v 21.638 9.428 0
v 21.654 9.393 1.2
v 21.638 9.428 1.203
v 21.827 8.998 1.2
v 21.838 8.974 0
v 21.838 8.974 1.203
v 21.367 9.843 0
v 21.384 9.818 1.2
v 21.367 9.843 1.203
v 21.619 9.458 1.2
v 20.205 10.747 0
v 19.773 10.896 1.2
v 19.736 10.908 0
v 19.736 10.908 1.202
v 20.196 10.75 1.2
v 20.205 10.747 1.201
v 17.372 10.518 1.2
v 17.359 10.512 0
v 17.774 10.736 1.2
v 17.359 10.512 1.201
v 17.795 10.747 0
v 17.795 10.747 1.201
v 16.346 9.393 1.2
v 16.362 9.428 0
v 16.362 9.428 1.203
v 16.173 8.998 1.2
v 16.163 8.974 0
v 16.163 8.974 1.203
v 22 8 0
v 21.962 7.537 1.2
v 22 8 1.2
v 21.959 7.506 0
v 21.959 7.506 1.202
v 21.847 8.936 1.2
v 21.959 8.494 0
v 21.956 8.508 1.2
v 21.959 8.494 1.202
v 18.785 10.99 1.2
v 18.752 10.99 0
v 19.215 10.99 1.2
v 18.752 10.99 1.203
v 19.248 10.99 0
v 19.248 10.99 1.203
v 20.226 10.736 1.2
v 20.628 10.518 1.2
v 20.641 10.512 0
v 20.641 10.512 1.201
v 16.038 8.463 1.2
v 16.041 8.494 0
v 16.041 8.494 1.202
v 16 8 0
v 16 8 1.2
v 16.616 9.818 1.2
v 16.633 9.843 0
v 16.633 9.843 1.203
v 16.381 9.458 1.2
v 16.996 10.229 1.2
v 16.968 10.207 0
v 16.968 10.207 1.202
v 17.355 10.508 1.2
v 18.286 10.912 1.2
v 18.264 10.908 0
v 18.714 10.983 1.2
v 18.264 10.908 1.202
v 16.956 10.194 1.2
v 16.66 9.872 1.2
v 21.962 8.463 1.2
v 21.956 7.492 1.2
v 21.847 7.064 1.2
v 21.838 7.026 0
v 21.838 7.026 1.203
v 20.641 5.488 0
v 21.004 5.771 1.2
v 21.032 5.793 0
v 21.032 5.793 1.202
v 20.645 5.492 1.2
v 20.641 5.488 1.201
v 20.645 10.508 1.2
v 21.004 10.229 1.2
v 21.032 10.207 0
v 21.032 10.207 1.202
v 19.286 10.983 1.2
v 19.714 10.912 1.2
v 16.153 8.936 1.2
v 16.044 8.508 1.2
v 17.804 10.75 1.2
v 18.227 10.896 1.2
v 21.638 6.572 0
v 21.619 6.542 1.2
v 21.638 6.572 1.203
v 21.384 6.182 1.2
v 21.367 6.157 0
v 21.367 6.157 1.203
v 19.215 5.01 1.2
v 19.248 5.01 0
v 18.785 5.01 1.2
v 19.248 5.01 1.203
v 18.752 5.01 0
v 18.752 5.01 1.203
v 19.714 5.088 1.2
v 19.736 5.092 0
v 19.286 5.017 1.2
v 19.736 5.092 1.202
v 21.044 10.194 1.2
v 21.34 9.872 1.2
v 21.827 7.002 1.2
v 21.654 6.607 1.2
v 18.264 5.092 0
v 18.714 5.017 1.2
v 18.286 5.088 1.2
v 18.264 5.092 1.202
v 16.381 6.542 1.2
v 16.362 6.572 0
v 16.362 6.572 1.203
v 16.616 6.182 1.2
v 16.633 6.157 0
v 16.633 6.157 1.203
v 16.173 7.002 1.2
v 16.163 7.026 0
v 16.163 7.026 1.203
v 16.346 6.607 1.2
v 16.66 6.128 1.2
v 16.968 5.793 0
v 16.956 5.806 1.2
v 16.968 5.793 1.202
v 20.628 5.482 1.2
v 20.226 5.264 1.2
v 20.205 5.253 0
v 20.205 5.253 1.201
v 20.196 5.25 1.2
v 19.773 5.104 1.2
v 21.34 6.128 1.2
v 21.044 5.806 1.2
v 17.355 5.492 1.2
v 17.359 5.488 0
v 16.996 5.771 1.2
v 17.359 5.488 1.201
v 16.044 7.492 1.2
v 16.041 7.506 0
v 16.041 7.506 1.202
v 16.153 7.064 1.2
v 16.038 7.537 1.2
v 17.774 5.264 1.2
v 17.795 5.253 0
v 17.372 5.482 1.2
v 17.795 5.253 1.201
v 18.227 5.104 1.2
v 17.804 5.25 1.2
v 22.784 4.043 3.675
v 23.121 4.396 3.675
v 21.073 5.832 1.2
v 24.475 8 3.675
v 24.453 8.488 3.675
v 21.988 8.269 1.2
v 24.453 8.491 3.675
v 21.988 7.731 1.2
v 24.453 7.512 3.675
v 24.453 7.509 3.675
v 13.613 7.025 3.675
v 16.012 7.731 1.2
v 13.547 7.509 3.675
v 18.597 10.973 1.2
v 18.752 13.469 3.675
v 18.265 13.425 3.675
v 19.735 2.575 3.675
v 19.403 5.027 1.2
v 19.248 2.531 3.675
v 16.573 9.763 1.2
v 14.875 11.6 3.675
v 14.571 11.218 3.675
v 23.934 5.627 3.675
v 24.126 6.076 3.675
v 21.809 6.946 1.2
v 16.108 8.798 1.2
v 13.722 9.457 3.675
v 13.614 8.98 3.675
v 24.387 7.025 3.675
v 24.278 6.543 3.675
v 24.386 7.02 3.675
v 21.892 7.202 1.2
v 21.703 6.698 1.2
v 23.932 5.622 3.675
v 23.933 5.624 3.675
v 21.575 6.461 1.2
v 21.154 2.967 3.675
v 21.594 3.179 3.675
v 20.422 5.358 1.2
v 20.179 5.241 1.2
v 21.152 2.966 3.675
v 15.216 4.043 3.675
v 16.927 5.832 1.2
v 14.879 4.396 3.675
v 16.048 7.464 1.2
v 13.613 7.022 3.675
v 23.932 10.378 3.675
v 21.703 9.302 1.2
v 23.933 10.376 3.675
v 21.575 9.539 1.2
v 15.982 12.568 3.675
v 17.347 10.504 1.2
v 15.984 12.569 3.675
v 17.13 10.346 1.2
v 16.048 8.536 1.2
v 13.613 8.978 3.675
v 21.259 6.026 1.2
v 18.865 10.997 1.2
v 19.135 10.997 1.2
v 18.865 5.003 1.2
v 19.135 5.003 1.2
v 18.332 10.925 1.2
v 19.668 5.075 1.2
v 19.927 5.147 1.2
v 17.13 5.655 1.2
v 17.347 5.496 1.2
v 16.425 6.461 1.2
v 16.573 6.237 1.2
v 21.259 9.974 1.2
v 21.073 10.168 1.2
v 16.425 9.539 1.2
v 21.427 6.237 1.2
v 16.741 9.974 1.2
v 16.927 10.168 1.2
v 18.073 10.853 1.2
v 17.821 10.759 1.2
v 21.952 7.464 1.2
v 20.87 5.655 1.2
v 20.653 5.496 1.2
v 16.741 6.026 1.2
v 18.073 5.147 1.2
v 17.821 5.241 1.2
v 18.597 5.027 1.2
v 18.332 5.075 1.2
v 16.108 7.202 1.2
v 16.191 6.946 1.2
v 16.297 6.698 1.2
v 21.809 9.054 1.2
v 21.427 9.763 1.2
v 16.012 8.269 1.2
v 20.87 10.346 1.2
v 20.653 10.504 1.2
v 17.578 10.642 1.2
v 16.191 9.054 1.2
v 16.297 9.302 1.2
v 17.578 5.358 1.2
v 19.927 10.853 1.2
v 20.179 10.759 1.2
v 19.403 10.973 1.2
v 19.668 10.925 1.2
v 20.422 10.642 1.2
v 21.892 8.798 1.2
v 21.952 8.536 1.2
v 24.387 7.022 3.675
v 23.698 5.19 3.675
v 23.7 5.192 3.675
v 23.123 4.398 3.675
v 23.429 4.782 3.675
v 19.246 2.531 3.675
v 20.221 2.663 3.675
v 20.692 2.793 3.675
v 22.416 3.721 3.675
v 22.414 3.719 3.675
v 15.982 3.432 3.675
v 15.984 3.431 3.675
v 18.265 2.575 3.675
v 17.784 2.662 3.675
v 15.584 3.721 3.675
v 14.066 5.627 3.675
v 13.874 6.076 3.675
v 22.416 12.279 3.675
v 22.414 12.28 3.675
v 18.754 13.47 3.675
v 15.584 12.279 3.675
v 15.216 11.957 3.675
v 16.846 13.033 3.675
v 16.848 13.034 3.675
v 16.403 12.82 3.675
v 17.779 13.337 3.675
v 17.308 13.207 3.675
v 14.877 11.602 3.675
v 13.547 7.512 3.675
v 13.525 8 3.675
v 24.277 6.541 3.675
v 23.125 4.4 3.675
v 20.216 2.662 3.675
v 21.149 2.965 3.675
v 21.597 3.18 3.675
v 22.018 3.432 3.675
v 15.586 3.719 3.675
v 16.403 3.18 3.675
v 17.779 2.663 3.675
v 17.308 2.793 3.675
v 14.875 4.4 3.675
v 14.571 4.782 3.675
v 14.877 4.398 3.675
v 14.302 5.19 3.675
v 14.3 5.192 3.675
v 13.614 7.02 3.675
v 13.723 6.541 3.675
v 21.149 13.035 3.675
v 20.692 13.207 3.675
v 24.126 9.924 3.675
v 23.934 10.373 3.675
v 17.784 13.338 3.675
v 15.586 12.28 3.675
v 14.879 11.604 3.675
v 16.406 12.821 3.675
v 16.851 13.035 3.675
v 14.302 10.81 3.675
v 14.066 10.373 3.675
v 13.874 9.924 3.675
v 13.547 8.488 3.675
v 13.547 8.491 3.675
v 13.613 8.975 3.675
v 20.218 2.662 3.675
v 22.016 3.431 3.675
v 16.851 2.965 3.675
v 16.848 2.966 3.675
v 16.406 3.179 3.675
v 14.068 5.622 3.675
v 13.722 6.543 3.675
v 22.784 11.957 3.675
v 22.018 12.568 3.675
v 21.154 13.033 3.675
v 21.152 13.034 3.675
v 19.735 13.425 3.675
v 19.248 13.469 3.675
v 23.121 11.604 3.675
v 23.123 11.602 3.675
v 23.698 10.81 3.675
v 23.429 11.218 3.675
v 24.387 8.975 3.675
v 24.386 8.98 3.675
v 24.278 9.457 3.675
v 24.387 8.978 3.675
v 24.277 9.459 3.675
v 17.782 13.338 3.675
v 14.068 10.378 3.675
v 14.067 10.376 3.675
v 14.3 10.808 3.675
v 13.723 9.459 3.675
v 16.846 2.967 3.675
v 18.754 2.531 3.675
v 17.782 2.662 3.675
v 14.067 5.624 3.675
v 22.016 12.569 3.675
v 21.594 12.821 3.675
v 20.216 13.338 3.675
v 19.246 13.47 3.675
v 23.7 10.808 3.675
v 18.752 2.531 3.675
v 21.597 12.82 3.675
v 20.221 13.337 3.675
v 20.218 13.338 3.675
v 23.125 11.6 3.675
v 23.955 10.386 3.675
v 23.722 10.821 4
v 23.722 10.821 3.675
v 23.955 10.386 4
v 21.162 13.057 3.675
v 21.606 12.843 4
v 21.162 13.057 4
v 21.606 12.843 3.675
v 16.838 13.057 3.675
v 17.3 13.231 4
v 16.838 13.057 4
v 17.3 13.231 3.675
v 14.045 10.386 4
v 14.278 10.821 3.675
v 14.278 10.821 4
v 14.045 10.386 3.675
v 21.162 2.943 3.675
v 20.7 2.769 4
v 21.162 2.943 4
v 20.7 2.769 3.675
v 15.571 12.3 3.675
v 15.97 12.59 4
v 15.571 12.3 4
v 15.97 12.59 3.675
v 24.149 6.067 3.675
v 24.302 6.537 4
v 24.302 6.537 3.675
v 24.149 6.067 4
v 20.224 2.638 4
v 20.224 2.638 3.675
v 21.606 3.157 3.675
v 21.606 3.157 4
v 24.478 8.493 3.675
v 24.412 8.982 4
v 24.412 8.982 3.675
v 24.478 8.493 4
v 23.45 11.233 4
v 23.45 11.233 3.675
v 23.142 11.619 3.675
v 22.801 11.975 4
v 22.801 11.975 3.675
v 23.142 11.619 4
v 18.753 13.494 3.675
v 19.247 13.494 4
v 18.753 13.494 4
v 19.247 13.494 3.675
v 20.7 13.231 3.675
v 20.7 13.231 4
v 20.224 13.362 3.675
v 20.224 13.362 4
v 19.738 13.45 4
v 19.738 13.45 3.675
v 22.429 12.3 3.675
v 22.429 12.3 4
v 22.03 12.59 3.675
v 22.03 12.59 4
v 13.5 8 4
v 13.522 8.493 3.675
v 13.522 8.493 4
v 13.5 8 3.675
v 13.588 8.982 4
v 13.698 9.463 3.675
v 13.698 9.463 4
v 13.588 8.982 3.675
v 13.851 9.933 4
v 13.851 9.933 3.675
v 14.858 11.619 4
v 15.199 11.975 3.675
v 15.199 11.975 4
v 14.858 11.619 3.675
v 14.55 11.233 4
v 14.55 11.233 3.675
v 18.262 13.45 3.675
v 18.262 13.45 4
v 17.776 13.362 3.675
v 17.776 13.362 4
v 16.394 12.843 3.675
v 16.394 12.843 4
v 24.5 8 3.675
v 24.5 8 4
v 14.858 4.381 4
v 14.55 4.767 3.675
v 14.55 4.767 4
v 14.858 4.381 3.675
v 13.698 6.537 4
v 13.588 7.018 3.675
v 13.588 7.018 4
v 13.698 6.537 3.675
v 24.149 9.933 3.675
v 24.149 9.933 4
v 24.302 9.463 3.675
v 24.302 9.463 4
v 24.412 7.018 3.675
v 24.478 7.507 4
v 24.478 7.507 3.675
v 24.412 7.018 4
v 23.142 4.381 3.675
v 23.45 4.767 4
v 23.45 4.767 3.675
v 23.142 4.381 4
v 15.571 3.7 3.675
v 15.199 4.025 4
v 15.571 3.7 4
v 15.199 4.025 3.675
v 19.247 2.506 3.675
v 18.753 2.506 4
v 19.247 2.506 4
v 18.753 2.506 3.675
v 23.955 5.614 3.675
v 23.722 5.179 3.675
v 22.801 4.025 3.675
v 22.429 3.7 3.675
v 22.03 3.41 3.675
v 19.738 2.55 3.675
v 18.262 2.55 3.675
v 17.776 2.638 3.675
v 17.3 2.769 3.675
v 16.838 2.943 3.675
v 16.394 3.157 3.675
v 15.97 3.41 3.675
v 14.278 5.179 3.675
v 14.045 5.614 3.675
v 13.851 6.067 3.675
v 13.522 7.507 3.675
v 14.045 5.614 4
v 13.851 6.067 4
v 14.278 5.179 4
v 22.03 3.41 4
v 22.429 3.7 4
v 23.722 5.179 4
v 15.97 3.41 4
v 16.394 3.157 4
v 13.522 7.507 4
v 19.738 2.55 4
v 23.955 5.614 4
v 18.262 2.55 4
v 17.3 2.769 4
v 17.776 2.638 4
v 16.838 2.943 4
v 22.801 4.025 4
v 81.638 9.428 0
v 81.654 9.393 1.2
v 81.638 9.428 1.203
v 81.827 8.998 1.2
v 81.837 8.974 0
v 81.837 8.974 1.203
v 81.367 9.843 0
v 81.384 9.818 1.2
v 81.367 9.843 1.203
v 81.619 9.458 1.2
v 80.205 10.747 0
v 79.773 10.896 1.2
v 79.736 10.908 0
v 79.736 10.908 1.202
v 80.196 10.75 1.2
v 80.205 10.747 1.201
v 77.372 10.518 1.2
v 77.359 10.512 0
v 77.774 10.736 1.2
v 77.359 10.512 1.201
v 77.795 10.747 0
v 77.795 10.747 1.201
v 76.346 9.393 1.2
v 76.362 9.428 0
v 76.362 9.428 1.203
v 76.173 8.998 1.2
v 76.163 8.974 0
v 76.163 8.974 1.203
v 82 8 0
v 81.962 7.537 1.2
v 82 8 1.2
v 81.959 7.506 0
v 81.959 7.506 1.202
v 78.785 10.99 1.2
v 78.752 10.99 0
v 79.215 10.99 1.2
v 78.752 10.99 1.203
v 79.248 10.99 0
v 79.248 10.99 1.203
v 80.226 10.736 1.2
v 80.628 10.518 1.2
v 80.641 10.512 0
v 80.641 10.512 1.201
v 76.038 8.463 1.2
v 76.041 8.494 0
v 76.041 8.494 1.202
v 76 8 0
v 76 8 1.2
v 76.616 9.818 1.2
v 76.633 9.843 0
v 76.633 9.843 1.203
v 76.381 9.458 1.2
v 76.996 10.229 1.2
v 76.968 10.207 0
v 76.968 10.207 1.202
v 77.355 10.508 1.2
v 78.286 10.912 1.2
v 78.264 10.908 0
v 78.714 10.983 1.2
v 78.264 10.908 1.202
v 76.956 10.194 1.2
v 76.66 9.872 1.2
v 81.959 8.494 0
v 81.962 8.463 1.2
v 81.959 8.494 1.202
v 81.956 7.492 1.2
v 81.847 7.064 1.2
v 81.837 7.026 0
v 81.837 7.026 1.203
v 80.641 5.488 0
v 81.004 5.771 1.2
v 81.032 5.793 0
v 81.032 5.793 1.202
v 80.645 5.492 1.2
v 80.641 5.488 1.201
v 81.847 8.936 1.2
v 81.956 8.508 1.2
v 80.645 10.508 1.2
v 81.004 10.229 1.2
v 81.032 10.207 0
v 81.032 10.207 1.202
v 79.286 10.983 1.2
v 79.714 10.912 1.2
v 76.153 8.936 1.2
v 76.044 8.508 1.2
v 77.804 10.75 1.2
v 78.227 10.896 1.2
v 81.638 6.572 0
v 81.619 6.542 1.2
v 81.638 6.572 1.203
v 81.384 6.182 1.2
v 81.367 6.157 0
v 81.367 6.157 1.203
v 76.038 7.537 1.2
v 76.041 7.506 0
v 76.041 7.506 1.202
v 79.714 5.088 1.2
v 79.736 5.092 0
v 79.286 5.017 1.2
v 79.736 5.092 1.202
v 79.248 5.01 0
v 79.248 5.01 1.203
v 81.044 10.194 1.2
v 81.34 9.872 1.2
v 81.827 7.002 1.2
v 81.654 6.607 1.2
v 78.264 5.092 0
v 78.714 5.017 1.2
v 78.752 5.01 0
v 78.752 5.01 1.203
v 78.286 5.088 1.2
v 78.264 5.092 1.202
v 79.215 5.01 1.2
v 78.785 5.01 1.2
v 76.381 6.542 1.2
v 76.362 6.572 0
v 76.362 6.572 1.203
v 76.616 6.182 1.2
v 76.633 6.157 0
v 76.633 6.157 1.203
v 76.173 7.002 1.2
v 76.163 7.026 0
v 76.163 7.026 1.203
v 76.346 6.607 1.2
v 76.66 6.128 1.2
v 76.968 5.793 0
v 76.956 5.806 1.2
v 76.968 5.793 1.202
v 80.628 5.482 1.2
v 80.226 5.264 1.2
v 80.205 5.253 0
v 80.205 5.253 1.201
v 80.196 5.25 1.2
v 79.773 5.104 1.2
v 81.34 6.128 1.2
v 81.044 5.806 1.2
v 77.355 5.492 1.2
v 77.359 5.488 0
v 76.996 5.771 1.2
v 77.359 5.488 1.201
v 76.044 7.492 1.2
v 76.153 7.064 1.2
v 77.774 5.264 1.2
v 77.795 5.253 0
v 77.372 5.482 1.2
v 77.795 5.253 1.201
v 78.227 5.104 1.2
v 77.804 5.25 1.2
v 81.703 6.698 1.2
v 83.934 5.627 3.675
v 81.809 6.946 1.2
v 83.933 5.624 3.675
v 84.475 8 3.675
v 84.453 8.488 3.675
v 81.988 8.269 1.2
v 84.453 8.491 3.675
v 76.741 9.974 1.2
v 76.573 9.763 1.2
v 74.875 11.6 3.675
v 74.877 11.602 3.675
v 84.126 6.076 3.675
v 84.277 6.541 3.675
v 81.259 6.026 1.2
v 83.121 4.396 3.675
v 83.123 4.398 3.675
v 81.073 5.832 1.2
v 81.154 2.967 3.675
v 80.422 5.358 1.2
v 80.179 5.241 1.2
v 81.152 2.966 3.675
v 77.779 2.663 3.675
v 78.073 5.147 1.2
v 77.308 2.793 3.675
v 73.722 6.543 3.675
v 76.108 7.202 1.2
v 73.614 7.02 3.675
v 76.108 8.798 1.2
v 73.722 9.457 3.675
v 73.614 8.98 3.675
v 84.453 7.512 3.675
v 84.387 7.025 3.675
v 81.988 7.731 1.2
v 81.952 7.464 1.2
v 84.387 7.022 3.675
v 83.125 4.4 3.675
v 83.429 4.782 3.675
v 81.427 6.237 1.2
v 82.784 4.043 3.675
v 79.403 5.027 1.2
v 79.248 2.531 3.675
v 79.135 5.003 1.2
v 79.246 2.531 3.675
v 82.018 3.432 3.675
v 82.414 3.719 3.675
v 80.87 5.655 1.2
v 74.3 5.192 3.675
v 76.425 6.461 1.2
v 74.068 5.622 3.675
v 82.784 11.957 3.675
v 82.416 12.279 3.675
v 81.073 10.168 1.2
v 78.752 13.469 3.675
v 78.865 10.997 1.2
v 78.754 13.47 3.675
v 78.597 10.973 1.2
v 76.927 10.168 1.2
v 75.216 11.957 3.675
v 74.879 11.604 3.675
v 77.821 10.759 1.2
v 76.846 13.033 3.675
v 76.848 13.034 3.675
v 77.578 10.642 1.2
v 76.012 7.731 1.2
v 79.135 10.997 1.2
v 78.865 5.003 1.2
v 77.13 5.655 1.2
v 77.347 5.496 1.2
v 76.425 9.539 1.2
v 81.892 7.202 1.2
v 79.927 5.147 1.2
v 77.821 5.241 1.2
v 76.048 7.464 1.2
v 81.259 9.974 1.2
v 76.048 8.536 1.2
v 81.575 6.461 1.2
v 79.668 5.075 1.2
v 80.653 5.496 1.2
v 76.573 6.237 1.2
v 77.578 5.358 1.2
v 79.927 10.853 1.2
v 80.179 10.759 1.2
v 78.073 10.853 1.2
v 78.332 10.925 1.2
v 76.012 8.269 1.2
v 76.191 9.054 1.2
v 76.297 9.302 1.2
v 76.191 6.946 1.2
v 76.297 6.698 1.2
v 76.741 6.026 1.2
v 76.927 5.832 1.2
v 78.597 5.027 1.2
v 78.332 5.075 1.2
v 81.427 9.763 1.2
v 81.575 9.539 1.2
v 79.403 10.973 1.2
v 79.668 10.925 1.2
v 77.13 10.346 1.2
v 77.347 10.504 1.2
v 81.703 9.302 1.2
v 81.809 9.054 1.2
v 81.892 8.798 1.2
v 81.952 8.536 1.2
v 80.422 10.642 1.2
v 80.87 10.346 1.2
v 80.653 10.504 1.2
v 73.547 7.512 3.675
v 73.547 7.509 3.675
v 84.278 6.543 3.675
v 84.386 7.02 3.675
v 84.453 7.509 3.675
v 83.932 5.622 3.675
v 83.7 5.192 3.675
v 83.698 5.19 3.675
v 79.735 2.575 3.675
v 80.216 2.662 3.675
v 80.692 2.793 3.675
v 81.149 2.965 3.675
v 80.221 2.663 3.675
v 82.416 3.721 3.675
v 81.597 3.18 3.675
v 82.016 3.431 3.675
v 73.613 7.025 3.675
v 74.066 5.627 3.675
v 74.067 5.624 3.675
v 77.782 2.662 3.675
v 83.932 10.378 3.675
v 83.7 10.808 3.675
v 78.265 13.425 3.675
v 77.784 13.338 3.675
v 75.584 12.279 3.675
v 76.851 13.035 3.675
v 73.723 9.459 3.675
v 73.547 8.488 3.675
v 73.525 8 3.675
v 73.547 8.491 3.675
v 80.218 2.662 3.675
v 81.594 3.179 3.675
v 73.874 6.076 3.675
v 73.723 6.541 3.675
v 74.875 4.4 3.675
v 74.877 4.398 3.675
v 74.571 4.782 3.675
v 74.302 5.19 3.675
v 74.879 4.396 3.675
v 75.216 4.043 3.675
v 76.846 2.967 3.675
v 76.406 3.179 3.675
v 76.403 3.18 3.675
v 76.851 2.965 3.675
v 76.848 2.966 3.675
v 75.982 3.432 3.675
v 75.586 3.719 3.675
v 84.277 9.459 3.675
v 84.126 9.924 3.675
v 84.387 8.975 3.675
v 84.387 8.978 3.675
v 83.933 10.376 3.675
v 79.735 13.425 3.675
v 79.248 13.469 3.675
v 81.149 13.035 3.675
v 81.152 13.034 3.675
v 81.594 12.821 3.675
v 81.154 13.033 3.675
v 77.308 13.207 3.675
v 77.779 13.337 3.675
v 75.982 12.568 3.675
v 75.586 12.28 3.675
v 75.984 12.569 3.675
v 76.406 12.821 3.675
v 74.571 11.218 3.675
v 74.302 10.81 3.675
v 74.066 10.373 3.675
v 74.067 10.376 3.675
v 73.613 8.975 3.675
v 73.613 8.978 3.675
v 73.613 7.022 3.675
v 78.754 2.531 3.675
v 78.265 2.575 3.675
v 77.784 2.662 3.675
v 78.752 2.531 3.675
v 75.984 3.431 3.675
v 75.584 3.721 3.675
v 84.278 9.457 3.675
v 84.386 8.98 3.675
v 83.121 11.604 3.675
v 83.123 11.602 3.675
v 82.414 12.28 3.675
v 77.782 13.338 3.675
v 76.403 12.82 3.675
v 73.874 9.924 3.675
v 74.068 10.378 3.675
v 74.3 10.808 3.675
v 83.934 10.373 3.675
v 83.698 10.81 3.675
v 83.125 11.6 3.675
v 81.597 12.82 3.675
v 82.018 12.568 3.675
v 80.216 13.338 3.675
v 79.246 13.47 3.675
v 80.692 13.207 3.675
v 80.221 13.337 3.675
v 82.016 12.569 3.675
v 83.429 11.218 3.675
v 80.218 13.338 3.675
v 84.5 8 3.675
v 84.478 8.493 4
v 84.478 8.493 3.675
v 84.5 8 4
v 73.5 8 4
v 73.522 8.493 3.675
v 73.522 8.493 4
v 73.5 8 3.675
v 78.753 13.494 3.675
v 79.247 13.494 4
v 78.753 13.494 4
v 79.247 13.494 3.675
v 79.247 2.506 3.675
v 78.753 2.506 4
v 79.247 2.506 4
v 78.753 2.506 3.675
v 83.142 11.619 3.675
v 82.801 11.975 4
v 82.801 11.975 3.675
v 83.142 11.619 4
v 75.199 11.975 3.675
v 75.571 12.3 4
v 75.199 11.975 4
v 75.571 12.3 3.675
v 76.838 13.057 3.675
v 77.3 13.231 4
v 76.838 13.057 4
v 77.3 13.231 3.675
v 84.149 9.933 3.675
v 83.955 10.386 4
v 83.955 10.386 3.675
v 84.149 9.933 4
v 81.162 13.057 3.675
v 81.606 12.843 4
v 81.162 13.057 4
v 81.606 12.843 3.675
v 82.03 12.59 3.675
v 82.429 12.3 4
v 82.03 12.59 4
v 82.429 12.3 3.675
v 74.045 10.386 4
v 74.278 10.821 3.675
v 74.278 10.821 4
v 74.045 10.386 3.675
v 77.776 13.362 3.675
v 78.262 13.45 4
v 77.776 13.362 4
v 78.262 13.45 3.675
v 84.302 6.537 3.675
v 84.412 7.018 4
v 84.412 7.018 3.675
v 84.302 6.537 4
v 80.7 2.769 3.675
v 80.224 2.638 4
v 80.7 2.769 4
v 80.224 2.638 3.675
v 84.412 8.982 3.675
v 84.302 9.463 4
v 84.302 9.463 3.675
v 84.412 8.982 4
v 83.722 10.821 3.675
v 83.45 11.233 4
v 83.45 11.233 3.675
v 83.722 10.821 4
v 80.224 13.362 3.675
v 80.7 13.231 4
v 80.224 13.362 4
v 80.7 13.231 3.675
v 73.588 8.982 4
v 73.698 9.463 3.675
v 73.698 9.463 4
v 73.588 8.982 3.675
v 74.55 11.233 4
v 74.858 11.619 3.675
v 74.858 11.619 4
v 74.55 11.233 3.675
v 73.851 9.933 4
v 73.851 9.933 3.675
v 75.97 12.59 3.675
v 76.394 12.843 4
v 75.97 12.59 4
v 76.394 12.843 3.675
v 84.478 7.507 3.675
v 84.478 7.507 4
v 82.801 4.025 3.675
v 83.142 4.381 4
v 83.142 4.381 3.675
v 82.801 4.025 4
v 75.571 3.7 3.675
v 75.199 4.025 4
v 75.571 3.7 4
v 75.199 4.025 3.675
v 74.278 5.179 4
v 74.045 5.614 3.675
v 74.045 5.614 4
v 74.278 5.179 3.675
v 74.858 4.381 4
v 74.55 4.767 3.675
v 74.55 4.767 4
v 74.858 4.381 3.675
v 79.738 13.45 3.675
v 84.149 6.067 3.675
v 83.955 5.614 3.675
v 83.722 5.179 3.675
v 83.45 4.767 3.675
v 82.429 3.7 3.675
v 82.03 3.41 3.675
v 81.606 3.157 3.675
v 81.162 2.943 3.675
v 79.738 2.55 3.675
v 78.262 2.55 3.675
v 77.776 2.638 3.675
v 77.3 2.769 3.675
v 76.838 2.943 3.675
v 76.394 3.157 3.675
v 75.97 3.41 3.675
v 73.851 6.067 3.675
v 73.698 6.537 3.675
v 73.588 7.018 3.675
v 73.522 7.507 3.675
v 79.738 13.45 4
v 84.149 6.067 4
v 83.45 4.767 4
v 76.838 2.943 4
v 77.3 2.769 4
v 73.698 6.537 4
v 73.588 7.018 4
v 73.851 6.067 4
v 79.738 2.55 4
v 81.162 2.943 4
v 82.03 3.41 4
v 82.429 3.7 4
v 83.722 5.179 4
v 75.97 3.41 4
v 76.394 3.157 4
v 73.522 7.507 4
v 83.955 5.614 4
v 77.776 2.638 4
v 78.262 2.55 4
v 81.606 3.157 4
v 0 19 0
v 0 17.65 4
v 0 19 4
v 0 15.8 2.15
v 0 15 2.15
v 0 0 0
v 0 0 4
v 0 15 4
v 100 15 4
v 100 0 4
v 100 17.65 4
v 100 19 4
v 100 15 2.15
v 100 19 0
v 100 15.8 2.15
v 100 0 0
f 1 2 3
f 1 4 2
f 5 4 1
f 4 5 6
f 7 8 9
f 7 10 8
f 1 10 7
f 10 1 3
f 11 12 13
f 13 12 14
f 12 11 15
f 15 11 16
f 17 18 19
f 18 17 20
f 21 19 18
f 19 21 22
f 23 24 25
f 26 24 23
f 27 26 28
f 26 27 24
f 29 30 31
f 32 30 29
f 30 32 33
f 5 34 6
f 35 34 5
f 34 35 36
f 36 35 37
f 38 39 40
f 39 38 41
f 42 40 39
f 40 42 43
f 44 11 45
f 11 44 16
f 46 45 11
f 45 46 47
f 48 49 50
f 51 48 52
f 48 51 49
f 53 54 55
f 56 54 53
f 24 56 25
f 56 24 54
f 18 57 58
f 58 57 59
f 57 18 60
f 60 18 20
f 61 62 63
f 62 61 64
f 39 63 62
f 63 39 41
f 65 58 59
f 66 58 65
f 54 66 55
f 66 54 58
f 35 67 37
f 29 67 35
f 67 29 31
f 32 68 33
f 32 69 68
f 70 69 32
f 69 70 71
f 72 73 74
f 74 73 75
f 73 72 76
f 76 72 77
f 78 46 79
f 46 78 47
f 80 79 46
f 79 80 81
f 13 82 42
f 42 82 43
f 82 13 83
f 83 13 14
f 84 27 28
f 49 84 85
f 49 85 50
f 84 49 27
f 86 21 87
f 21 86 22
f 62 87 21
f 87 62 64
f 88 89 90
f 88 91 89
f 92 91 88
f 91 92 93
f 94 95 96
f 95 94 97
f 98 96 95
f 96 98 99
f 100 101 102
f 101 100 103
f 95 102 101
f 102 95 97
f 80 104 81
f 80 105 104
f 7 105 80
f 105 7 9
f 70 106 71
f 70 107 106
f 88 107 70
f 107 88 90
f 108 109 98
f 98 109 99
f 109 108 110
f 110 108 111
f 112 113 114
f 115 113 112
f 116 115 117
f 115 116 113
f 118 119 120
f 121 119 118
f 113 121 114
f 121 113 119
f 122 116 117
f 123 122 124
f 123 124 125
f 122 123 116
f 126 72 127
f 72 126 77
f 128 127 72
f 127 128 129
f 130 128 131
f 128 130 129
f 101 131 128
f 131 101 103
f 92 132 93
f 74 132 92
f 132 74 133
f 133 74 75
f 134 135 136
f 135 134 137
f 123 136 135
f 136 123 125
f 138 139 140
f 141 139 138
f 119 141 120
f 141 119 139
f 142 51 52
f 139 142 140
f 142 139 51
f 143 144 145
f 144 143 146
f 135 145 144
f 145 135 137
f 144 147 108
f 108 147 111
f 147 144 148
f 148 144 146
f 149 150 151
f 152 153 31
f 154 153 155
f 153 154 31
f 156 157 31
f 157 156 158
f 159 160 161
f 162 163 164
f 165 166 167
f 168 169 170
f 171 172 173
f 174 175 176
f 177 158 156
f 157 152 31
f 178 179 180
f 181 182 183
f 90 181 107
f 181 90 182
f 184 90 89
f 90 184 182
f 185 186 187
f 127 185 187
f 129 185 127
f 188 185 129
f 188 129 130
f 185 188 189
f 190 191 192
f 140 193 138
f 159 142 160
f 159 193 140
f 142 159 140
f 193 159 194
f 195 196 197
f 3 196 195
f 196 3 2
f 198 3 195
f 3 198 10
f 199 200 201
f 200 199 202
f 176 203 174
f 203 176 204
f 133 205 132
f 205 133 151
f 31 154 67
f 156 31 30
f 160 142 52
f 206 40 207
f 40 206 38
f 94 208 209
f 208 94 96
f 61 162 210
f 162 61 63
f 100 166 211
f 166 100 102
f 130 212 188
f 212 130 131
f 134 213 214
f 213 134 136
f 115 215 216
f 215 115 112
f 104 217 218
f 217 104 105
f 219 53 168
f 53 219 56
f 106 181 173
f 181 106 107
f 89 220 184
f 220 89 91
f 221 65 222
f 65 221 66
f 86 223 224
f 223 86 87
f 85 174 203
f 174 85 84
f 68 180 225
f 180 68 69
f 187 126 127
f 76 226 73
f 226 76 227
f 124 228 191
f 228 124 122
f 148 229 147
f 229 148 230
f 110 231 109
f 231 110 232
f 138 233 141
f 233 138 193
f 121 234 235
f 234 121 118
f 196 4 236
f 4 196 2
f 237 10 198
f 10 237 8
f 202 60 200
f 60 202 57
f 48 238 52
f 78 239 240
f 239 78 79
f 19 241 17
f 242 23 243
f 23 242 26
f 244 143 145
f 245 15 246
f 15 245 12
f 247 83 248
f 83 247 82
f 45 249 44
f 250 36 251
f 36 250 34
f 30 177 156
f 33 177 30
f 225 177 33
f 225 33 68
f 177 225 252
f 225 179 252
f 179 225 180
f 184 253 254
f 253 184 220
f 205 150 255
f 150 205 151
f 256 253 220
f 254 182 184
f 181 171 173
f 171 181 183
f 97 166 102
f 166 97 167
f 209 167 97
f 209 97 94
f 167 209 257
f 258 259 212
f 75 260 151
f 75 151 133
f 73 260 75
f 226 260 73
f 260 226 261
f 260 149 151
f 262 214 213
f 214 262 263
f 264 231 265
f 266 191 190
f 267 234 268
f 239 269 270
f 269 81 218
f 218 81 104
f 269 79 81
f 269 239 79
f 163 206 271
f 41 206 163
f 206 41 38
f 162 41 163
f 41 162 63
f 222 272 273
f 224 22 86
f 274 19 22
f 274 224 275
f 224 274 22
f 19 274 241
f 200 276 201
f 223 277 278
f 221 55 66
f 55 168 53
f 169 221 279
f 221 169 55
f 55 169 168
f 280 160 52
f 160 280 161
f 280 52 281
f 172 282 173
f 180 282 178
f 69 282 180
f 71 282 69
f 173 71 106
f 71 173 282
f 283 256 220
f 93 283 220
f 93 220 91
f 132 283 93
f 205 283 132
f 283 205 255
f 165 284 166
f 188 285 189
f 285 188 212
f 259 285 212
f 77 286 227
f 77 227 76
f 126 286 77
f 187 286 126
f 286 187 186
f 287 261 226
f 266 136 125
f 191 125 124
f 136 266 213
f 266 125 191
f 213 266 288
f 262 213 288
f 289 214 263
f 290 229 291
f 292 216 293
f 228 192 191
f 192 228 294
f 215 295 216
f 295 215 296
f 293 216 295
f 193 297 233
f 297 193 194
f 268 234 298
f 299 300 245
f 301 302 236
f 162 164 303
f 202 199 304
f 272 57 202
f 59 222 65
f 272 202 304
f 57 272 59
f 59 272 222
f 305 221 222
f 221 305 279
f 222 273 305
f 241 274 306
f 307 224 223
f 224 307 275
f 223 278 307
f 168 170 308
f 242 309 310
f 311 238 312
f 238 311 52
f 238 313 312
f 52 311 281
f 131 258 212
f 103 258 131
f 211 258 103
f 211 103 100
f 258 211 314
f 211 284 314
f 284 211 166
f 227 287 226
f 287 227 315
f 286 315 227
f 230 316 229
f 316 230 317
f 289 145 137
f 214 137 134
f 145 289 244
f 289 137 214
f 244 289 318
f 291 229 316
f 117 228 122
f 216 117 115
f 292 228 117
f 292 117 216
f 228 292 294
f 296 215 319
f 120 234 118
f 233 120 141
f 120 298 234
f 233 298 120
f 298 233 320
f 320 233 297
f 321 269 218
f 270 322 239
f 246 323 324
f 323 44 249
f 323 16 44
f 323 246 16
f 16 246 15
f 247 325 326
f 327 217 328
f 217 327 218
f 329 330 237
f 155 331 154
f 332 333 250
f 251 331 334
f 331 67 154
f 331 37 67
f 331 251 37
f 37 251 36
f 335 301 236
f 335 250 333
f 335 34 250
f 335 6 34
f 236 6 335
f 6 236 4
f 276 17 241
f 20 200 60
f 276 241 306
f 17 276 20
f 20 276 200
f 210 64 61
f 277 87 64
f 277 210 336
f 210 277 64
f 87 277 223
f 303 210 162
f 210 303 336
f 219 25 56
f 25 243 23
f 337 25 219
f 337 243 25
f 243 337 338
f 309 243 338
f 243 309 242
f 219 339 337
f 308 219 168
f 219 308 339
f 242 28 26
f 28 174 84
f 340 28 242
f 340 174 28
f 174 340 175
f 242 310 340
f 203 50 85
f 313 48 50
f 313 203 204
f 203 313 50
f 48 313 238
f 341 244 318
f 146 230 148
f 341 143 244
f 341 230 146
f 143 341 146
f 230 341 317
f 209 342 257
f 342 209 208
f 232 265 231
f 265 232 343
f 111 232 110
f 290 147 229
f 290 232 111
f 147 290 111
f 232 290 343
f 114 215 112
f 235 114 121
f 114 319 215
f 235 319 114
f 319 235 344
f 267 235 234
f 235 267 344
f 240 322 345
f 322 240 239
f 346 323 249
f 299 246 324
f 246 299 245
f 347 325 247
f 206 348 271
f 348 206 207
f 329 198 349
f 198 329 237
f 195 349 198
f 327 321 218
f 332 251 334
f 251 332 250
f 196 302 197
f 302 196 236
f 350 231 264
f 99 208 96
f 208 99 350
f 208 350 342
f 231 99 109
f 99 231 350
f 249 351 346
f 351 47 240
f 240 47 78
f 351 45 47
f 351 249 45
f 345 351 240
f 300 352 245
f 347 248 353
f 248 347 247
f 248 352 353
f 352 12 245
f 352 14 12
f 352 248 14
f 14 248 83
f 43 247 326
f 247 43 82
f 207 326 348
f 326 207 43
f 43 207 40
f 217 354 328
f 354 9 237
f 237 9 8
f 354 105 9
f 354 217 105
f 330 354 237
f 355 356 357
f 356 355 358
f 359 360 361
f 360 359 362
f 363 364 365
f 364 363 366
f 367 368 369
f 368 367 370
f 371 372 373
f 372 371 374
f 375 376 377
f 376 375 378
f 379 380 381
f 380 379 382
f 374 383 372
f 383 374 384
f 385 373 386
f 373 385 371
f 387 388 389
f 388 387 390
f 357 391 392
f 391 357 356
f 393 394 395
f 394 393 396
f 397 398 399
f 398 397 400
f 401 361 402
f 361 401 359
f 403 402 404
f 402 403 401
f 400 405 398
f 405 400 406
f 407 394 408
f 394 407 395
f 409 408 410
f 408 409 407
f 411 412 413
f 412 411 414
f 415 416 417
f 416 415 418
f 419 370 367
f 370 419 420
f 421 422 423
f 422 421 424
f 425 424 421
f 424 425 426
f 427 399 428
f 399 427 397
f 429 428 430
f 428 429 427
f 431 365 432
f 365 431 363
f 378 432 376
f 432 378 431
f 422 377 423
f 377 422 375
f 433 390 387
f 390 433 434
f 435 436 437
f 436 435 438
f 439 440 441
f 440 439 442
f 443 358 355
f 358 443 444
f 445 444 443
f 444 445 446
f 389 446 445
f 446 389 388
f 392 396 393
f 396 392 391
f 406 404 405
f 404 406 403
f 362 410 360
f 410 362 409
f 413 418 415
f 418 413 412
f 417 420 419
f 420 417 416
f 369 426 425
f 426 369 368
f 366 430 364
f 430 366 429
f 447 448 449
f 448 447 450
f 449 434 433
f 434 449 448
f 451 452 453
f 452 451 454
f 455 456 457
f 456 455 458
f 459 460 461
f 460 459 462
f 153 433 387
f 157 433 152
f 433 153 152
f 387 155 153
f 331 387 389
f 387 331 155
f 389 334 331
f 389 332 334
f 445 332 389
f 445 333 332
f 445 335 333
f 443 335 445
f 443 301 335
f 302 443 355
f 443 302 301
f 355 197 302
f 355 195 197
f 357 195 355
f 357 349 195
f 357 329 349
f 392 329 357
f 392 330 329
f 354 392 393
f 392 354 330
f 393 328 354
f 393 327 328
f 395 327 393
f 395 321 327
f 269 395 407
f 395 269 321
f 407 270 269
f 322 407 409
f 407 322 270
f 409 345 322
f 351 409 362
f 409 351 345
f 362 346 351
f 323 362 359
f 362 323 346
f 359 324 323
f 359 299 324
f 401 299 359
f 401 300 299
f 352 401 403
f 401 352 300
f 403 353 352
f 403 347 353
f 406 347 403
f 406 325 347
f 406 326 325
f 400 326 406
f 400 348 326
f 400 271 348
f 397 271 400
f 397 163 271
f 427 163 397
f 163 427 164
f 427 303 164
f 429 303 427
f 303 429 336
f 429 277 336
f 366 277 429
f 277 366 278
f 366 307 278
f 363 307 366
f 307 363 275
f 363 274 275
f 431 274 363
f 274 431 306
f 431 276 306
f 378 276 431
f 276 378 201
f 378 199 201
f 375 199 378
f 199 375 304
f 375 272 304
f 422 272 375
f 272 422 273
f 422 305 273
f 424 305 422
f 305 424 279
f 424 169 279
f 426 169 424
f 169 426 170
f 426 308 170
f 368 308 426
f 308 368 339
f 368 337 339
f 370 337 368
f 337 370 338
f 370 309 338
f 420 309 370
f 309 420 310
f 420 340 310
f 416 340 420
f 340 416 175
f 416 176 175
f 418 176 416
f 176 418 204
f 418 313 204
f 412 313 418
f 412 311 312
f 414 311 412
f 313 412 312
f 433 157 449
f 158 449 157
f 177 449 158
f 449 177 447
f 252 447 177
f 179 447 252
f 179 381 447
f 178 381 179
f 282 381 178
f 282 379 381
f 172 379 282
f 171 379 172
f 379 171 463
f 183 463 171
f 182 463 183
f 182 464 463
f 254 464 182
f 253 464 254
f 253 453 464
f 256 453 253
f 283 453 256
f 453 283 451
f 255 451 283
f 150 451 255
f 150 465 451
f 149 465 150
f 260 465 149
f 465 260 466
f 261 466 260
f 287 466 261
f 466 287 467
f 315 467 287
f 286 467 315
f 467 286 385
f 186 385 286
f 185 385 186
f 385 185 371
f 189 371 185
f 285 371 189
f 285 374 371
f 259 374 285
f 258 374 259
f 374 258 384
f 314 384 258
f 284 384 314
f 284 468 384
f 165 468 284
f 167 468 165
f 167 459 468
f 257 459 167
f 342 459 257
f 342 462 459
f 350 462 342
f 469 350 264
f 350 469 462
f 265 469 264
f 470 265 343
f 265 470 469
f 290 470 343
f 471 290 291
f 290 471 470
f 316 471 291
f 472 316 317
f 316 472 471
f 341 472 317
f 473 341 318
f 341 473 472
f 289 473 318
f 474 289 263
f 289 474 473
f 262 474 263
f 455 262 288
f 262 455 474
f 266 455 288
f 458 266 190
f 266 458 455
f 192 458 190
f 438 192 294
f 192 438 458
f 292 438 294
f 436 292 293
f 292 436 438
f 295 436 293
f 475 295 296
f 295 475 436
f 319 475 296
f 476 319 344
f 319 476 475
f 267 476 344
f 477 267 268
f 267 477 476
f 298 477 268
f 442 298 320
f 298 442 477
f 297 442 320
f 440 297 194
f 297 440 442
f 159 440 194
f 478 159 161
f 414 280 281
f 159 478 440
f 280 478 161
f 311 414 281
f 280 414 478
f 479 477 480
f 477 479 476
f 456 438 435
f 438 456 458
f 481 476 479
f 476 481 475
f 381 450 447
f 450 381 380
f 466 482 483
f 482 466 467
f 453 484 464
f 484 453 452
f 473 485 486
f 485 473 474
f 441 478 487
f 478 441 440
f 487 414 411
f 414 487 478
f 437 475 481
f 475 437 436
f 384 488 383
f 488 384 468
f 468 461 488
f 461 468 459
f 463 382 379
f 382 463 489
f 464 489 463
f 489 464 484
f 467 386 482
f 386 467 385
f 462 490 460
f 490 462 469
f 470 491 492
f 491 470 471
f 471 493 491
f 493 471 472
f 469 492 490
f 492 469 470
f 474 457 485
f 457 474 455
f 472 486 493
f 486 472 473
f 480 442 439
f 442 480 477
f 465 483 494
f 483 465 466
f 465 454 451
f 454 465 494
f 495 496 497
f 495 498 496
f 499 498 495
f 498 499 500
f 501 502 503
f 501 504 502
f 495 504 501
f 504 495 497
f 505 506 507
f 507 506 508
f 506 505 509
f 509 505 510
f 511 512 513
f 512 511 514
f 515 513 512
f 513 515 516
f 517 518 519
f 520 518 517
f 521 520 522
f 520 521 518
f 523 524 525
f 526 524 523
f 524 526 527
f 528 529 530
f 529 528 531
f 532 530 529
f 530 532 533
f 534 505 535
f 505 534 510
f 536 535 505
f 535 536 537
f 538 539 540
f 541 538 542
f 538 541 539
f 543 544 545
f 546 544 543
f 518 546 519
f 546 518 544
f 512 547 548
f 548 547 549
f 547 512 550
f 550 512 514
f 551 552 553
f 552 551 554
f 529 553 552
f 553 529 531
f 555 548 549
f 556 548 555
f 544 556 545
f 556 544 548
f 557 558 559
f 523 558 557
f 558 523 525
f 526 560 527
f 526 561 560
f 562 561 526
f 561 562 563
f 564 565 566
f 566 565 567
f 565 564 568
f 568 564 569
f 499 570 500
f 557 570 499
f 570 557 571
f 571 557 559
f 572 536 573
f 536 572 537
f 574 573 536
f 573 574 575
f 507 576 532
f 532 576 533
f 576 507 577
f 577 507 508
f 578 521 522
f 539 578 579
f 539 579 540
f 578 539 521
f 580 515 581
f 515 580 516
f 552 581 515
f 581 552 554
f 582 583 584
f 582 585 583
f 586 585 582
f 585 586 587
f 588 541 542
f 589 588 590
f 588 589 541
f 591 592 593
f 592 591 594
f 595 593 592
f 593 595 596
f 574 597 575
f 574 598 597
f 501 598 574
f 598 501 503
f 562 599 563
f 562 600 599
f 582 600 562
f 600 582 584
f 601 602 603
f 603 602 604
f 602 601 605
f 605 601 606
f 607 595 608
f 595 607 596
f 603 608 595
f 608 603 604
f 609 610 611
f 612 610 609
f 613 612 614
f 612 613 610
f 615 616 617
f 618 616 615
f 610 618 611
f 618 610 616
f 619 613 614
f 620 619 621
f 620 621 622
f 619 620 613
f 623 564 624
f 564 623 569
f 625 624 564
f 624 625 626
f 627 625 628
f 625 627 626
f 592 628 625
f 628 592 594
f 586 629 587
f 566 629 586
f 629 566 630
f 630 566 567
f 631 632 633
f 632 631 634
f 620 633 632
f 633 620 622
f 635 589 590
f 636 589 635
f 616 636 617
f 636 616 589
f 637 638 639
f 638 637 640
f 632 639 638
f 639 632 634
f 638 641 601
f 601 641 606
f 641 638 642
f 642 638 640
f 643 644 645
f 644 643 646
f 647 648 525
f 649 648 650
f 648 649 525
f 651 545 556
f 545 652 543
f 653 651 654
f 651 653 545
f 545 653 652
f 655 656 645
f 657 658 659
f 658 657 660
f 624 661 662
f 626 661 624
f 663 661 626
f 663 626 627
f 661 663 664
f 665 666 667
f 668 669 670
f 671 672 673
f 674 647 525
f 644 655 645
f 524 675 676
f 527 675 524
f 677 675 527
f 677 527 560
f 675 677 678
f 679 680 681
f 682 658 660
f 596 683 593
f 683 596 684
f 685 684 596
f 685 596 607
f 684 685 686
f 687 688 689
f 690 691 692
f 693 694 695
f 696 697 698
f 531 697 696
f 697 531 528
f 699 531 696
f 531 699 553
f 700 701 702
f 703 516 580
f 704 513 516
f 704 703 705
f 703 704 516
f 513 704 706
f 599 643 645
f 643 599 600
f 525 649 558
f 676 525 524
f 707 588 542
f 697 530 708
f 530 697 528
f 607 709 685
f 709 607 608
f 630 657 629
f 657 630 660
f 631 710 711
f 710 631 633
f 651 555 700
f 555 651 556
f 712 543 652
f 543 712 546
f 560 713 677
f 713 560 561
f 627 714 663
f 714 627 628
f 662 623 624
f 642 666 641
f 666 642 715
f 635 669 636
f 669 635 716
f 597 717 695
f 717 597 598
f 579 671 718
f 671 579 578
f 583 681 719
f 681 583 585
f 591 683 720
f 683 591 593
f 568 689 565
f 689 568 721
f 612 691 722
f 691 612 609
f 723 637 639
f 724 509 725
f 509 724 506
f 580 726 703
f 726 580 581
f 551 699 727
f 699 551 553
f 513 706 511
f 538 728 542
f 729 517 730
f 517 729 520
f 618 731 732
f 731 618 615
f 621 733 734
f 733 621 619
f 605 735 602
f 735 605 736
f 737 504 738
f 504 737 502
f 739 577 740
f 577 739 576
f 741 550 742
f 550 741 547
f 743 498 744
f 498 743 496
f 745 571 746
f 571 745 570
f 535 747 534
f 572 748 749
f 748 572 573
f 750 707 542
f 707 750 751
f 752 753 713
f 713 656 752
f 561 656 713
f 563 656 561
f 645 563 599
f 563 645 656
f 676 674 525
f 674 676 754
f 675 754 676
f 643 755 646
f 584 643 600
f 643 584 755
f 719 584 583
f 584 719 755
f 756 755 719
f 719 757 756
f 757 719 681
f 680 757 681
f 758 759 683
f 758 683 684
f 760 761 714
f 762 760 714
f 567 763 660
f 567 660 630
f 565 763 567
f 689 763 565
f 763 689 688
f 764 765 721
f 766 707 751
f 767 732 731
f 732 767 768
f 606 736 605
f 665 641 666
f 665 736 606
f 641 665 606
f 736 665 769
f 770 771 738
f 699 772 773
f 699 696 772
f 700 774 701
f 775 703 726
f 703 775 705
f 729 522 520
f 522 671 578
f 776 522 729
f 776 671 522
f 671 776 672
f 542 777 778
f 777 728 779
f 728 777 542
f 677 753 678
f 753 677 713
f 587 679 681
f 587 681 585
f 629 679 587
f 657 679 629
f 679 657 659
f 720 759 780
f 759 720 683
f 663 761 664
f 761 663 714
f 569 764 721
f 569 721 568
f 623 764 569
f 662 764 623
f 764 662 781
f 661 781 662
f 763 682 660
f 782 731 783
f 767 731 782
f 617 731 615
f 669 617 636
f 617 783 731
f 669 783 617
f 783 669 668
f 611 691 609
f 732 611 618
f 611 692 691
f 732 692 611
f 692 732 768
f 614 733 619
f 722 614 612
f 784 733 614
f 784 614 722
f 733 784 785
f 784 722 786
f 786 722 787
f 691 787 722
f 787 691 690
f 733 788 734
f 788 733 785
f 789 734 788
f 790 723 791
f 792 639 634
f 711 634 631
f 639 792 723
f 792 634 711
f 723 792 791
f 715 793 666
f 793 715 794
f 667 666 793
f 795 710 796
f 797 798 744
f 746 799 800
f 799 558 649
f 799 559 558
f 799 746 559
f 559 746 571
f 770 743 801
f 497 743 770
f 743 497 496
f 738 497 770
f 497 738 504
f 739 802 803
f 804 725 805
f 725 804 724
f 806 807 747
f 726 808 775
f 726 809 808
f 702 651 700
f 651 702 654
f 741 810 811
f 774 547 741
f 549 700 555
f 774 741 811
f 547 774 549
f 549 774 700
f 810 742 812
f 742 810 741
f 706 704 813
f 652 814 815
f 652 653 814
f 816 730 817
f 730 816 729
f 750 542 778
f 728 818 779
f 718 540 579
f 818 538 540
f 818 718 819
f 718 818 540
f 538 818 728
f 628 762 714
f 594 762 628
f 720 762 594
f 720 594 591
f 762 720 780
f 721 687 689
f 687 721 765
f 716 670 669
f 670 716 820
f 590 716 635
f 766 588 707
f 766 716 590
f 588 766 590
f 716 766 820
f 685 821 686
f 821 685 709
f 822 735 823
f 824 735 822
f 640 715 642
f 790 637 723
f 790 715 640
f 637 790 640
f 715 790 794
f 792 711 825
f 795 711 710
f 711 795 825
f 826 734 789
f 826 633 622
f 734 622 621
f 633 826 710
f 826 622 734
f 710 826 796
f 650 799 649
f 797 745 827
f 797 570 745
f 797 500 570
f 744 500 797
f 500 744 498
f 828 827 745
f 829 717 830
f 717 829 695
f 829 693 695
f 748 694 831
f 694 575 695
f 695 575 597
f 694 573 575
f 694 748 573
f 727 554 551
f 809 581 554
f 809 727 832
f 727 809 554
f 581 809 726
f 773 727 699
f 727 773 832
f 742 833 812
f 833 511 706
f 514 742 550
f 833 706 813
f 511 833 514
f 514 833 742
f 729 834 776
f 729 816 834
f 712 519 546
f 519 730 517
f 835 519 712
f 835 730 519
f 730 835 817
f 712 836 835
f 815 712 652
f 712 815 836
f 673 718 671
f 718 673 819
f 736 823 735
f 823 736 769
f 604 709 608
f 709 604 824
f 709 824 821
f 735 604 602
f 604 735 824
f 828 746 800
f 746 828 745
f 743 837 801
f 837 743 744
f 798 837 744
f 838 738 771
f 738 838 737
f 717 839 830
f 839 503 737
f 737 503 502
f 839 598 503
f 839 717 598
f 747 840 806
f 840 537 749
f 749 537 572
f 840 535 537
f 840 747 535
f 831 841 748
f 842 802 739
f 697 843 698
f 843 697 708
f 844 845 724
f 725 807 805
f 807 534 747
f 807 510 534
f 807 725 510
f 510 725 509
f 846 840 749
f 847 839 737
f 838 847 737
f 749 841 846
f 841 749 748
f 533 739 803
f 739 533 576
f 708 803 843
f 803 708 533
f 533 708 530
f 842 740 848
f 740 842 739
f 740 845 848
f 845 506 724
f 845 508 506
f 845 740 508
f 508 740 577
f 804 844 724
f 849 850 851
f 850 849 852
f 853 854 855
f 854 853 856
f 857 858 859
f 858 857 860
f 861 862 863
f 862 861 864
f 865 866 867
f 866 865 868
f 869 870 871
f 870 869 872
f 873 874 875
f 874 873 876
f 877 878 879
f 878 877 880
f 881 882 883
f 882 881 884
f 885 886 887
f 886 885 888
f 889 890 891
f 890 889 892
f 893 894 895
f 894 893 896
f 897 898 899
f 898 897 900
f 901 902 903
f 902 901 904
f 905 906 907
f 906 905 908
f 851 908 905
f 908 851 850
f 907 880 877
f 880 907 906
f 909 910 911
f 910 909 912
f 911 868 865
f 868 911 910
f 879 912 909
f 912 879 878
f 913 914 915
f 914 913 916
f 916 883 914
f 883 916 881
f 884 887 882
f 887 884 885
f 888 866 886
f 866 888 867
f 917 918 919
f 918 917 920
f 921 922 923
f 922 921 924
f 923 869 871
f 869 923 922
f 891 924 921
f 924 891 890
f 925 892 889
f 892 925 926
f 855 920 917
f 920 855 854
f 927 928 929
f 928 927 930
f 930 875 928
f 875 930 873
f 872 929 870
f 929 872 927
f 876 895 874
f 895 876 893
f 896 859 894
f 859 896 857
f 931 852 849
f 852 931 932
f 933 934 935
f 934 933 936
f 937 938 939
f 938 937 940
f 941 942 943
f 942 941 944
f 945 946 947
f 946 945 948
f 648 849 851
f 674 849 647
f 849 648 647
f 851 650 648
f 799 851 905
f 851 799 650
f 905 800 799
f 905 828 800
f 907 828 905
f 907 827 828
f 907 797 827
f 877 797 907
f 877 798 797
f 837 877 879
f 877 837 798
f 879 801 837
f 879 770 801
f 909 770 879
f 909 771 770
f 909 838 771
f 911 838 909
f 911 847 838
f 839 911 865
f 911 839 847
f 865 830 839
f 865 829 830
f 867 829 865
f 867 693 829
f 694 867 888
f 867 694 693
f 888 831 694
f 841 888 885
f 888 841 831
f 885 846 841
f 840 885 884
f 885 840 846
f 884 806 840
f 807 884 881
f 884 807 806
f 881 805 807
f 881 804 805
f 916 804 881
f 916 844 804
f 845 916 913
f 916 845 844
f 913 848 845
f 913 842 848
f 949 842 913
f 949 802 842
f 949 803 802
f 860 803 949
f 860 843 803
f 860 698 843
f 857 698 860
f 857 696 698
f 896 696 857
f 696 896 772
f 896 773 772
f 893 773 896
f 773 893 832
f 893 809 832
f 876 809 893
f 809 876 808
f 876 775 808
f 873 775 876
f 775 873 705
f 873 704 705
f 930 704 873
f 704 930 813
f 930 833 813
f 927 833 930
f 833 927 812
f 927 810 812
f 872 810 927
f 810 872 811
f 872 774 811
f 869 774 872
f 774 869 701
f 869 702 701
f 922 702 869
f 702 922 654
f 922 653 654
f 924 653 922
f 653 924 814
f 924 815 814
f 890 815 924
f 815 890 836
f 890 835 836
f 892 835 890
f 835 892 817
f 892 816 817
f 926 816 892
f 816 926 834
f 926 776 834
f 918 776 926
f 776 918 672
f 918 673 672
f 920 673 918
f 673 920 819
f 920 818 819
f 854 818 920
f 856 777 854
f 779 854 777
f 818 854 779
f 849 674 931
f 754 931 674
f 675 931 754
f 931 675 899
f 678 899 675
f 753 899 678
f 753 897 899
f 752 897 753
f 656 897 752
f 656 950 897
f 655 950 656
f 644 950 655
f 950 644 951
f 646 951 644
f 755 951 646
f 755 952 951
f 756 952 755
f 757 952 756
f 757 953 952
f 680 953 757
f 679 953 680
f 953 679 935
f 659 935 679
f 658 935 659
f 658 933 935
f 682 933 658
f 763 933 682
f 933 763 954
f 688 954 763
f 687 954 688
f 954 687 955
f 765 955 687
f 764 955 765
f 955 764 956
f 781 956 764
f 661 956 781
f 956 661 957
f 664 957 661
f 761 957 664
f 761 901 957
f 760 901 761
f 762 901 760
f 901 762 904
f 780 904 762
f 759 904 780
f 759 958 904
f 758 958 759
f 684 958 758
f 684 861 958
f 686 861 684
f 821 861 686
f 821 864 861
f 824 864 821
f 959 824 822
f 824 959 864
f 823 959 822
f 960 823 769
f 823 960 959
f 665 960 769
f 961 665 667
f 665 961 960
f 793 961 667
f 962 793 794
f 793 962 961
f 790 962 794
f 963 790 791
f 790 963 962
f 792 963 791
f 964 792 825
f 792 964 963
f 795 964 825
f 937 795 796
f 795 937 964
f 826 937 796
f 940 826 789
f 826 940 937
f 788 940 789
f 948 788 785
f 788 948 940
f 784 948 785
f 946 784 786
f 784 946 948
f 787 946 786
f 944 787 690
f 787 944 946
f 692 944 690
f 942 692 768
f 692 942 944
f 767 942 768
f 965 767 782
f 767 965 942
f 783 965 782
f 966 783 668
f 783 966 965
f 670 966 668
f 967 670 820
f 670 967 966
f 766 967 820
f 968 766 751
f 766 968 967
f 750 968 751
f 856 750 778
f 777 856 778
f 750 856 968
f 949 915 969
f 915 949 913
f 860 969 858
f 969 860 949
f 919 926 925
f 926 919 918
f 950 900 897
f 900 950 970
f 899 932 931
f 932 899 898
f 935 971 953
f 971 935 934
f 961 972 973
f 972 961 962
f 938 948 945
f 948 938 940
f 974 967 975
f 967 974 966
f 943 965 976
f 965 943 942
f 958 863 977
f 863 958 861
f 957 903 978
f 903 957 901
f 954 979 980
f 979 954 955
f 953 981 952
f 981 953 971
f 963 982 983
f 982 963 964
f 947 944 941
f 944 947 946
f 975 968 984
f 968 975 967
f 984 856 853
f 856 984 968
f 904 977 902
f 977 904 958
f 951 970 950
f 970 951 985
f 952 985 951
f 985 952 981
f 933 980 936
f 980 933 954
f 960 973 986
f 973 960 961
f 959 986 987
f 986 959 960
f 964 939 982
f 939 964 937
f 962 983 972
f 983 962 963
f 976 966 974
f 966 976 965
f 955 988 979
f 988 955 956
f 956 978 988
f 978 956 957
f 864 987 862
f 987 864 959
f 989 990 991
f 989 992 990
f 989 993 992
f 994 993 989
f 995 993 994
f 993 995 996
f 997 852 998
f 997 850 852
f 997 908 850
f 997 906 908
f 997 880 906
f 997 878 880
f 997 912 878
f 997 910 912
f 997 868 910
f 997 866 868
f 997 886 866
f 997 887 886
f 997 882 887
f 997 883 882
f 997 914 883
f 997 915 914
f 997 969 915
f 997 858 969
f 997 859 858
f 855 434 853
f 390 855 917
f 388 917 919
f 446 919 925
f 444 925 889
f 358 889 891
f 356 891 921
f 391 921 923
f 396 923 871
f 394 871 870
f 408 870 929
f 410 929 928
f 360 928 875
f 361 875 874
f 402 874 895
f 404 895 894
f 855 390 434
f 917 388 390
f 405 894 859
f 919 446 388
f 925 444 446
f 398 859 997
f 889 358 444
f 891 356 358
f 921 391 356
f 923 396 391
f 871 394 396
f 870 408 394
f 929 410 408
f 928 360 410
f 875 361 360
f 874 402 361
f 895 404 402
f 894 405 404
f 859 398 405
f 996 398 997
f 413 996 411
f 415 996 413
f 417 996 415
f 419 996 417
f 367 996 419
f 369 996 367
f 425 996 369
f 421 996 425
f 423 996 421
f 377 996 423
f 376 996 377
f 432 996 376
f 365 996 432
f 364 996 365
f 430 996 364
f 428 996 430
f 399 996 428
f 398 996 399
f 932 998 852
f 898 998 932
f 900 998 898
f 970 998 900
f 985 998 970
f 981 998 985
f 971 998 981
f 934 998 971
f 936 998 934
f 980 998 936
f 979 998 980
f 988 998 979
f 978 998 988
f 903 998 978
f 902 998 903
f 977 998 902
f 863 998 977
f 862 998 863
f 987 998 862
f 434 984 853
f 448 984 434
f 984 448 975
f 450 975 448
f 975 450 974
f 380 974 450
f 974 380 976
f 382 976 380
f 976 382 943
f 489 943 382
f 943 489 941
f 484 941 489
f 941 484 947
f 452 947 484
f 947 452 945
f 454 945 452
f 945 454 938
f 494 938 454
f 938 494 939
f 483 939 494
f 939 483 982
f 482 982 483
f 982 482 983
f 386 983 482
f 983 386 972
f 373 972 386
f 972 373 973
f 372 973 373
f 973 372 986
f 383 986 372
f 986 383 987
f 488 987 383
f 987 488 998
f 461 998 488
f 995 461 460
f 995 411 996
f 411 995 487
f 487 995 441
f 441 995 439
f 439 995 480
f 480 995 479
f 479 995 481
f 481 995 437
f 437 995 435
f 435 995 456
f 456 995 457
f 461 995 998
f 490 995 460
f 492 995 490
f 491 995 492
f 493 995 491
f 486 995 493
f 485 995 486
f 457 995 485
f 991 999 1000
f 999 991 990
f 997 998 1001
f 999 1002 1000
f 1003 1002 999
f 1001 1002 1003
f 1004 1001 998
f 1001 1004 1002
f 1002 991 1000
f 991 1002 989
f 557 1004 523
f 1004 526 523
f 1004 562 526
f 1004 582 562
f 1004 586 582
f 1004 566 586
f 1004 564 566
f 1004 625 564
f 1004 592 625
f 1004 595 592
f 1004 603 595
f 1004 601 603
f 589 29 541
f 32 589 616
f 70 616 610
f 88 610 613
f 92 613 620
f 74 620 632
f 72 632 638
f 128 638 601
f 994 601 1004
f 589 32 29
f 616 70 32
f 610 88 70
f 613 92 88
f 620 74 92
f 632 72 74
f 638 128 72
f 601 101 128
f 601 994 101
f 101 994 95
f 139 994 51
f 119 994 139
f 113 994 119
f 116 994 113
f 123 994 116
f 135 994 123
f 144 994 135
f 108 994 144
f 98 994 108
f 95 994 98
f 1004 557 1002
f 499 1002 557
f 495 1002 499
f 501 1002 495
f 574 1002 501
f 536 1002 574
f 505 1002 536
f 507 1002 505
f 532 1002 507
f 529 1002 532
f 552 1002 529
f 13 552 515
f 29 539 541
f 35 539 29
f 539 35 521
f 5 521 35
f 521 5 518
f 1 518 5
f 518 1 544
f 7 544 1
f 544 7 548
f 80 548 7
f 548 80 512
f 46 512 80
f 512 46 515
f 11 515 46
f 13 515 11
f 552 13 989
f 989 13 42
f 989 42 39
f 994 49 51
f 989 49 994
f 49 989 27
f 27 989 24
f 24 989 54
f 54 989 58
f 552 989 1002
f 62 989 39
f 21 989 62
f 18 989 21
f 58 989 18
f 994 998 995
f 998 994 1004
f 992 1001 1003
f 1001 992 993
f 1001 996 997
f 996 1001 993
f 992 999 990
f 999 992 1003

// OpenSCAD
/*
 * global defines
 * dimensions represent mm
 */
$fa=2;
$fs=0.5;

/// grid plane in which to place the main
/// construction geometry
/// 0 = xy
/// 1 = xz
/// 2 = yz
global_geometry_plane=0;

/// grid quadrant in which to place the main
/// construction geometry
/// 0 = centered
global_geometry_quadrant=1;

// jaw: basic jaw slab
jaw_length=100;
jaw_width=19;
jaw_thickness=4;

// bolt: bolt hole carvout
bolt_radius=3;
bolt_x_offset=-1;   /// x/y offsets account for bolt hole locations
bolt_y_offset=-1.5; /// being slightly out in manufacturing
bolt_sink=0.3;      // sink the bolt head deeper into the jaw
bolt_distance=60;   // distance between bolt centers
bolt_chamfer=2.5;   // 45° chamfer will be applied

// slot: slot/groove to be made in the jaw
slot_inner_width=0.8;    // slot width at deepest point
slot_chamfer_width=1.85; // extra width from chamfer
slot_depth=1.85;
slot_ratio=1.0;   // location of slot as a proportion of jaw
slot_y_offset=-4; // offset applied on top of slot_ratio


/*
 * module and function definitions
 */
// bolt object composed of main cylinder, chamfer cone,
// and optional extra cylinder to sink the bolt down
module bolt(h,r) {
	translate([0,0,-1]) cylinder(h=h+1,r=r);
	translate([0,0,h-bolt_chamfer-bolt_sink])
		cylinder(h=bolt_chamfer,r1=r,r2=r+bolt_chamfer);
	translate([0,0,h-bolt_sink-.025])
		cylinder(h=bolt_sink+1,r=r+bolt_chamfer);
}

// return the center point between the two bolts
function bolt_center() =
	[
		jaw_length/2-bolt_distance/2+bolt_x_offset,
		jaw_width/2+bolt_y_offset,
		0
	];

// slot object which is narrow at the deepest part and then
// widens in a chamfer to a maximum as it reaches the surface
module slot(length) {
//	translate([-1,0,0])
//		cube([length+2, slot_inner_width, slot_depth+1]);
	translate([length+1,0,0])
		rotate([90,0,-90])
		linear_extrude(height=length+2)
			polygon([
				[0,-slot_depth],
				[slot_inner_width,-slot_depth],
				[slot_inner_width,1],
				[-slot_chamfer_width,1],
				[-slot_chamfer_width,0],
				[0,-slot_depth]		
			]);
};

// return the position of the slot (bottom of y)
function slot_position(ratio=0.5,offset=0) =
	[
		0,
		jaw_width*ratio+slot_inner_width+offset,
		jaw_thickness
	];

/// rotate the geometry globally
/// plane - the plane to use as the surface for
///         the main construction geometry
///         0 = xy
///         1 = xz
///         2 = yz
module global_rotate(plane=0) {
	if (plane == 1)
		rotate([90,0,0]) children();
	else if (plane == 2)
		rotate([90,0,90]) children();
	else
		children();
}

/// translate the geometry globally
/// quadrant - the grid quadrant to use as the
///         surface for the main construction
///         geometry
///         0 = center on origin
module global_translate(quadrant=1) {
	if (quadrant == 0)
		translate([-jaw_length/2,-jaw_width/2,0]) children();
	else if (quadrant == 2)
		translate([-jaw_length,0,0]) children();
	else if (quadrant == 3)
		translate([-jaw_length,-jaw_width,0]) children();
	else if (quadrant == 4)
		translate([0,-jaw_width,0]) children();
	else
		children();
}

/*
 * main construction geometry
 */
global_rotate(global_geometry_plane)
	global_translate(global_geometry_quadrant)
		difference() {
			cube([jaw_length, jaw_width, jaw_thickness]);
			translate(bolt_center()) {
				bolt(h=jaw_thickness, r=bolt_radius);
				translate([bolt_distance,0,0])
					bolt(h=jaw_thickness, r=bolt_radius);
			}
			translate(slot_position(ratio=slot_ratio,offset=slot_y_offset))
				slot(jaw_length);
		}
